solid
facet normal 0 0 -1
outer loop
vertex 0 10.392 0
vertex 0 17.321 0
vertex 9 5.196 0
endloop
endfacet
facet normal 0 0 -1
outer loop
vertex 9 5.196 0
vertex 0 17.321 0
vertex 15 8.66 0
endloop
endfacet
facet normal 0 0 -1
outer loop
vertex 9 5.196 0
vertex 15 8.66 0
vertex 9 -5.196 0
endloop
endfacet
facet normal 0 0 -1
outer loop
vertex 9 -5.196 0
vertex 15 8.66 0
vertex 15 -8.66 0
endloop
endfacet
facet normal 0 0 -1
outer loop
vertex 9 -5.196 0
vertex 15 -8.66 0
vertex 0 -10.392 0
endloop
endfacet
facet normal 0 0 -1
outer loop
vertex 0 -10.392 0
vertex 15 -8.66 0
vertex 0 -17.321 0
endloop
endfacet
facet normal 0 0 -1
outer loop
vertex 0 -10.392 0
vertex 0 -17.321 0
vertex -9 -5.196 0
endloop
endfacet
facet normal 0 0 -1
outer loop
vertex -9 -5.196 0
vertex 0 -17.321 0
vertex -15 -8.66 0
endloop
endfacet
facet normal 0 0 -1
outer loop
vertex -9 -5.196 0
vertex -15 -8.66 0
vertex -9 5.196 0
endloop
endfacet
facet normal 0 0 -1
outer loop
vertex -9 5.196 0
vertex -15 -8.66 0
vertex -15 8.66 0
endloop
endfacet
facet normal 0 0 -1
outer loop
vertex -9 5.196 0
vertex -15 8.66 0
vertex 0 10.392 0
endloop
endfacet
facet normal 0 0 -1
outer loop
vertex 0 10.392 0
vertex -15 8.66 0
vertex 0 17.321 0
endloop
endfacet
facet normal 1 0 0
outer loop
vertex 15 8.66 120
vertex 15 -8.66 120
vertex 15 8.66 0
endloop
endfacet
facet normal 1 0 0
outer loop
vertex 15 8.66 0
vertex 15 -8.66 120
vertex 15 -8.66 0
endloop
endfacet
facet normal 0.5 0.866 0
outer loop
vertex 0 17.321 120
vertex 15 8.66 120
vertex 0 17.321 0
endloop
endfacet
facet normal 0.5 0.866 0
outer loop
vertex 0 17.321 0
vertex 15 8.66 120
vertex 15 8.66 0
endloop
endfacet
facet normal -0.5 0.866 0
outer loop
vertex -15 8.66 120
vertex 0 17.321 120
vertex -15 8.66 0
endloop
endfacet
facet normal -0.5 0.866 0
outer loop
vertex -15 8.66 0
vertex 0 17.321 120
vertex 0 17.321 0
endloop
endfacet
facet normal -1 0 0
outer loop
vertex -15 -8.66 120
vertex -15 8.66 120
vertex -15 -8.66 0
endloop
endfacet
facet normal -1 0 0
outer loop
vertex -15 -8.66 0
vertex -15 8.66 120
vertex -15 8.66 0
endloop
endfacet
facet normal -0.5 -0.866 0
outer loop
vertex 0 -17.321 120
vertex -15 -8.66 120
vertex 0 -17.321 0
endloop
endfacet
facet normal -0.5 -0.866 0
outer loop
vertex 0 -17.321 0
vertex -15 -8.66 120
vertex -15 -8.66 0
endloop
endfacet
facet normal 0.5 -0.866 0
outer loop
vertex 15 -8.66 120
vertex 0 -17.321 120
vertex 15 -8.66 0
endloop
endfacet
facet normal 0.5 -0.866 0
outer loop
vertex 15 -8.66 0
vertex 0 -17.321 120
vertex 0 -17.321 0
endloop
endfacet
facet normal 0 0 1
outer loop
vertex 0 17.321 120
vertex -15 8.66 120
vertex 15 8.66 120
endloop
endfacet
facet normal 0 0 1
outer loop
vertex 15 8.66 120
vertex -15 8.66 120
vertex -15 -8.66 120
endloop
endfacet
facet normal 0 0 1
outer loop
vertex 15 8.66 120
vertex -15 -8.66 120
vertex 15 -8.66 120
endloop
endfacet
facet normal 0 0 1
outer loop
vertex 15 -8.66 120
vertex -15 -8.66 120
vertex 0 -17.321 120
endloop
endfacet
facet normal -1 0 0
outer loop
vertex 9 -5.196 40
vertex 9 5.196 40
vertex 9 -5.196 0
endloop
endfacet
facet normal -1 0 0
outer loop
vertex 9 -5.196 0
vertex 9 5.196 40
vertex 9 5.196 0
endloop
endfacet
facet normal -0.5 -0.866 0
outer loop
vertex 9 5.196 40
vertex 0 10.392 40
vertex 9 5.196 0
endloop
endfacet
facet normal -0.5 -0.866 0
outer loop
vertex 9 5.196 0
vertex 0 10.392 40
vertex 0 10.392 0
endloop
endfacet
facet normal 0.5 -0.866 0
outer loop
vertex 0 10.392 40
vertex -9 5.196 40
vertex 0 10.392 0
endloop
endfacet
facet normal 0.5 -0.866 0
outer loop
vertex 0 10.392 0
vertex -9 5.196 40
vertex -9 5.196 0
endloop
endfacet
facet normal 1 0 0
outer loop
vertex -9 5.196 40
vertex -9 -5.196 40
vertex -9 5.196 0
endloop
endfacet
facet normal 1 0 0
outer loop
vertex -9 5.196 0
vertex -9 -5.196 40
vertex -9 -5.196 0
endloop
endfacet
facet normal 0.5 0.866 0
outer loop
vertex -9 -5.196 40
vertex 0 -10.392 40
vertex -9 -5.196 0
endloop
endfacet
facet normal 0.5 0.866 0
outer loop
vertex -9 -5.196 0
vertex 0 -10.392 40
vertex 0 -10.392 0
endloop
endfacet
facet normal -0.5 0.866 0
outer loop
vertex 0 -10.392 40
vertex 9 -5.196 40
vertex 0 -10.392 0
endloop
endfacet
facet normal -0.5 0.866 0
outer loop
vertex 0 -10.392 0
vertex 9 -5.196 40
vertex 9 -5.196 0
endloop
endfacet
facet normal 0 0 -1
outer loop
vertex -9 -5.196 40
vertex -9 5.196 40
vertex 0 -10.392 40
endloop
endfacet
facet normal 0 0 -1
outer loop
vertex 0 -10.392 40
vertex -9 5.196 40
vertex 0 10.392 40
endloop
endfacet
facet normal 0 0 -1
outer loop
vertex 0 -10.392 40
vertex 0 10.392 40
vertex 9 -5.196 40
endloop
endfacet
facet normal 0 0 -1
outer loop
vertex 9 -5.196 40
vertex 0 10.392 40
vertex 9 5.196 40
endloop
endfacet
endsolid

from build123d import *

# Parameters (mm, degrees)
RESSALTO_EXTRUS_O1_DEPTH = 120
CORTE_EXTRUS_O1_DEPTH    = 40


with BuildPart() as part:
    # Esboço2 → Ressalto-extrusão1 (new body)
    with BuildSketch(Plane.XY):
        Polygon((15, 8.660254038), (0, 17.320508076), (-15, 8.660254038), (-15, -8.660254038), (0, -17.320508076), (15, -8.660254038), align=None)
    extrude(amount=RESSALTO_EXTRUS_O1_DEPTH)

    # Esboço1 → Corte-extrusão1 (cut)
    with BuildSketch(Plane.XY):
        Polygon((9, 5.196152423), (0, 10.392304845), (-9, 5.196152423), (-9, -5.196152423), (0, -10.392304845), (9, -5.196152423), align=None)
    extrude(amount=CORTE_EXTRUS_O1_DEPTH, mode=Mode.SUBTRACT)


solid = part.part
